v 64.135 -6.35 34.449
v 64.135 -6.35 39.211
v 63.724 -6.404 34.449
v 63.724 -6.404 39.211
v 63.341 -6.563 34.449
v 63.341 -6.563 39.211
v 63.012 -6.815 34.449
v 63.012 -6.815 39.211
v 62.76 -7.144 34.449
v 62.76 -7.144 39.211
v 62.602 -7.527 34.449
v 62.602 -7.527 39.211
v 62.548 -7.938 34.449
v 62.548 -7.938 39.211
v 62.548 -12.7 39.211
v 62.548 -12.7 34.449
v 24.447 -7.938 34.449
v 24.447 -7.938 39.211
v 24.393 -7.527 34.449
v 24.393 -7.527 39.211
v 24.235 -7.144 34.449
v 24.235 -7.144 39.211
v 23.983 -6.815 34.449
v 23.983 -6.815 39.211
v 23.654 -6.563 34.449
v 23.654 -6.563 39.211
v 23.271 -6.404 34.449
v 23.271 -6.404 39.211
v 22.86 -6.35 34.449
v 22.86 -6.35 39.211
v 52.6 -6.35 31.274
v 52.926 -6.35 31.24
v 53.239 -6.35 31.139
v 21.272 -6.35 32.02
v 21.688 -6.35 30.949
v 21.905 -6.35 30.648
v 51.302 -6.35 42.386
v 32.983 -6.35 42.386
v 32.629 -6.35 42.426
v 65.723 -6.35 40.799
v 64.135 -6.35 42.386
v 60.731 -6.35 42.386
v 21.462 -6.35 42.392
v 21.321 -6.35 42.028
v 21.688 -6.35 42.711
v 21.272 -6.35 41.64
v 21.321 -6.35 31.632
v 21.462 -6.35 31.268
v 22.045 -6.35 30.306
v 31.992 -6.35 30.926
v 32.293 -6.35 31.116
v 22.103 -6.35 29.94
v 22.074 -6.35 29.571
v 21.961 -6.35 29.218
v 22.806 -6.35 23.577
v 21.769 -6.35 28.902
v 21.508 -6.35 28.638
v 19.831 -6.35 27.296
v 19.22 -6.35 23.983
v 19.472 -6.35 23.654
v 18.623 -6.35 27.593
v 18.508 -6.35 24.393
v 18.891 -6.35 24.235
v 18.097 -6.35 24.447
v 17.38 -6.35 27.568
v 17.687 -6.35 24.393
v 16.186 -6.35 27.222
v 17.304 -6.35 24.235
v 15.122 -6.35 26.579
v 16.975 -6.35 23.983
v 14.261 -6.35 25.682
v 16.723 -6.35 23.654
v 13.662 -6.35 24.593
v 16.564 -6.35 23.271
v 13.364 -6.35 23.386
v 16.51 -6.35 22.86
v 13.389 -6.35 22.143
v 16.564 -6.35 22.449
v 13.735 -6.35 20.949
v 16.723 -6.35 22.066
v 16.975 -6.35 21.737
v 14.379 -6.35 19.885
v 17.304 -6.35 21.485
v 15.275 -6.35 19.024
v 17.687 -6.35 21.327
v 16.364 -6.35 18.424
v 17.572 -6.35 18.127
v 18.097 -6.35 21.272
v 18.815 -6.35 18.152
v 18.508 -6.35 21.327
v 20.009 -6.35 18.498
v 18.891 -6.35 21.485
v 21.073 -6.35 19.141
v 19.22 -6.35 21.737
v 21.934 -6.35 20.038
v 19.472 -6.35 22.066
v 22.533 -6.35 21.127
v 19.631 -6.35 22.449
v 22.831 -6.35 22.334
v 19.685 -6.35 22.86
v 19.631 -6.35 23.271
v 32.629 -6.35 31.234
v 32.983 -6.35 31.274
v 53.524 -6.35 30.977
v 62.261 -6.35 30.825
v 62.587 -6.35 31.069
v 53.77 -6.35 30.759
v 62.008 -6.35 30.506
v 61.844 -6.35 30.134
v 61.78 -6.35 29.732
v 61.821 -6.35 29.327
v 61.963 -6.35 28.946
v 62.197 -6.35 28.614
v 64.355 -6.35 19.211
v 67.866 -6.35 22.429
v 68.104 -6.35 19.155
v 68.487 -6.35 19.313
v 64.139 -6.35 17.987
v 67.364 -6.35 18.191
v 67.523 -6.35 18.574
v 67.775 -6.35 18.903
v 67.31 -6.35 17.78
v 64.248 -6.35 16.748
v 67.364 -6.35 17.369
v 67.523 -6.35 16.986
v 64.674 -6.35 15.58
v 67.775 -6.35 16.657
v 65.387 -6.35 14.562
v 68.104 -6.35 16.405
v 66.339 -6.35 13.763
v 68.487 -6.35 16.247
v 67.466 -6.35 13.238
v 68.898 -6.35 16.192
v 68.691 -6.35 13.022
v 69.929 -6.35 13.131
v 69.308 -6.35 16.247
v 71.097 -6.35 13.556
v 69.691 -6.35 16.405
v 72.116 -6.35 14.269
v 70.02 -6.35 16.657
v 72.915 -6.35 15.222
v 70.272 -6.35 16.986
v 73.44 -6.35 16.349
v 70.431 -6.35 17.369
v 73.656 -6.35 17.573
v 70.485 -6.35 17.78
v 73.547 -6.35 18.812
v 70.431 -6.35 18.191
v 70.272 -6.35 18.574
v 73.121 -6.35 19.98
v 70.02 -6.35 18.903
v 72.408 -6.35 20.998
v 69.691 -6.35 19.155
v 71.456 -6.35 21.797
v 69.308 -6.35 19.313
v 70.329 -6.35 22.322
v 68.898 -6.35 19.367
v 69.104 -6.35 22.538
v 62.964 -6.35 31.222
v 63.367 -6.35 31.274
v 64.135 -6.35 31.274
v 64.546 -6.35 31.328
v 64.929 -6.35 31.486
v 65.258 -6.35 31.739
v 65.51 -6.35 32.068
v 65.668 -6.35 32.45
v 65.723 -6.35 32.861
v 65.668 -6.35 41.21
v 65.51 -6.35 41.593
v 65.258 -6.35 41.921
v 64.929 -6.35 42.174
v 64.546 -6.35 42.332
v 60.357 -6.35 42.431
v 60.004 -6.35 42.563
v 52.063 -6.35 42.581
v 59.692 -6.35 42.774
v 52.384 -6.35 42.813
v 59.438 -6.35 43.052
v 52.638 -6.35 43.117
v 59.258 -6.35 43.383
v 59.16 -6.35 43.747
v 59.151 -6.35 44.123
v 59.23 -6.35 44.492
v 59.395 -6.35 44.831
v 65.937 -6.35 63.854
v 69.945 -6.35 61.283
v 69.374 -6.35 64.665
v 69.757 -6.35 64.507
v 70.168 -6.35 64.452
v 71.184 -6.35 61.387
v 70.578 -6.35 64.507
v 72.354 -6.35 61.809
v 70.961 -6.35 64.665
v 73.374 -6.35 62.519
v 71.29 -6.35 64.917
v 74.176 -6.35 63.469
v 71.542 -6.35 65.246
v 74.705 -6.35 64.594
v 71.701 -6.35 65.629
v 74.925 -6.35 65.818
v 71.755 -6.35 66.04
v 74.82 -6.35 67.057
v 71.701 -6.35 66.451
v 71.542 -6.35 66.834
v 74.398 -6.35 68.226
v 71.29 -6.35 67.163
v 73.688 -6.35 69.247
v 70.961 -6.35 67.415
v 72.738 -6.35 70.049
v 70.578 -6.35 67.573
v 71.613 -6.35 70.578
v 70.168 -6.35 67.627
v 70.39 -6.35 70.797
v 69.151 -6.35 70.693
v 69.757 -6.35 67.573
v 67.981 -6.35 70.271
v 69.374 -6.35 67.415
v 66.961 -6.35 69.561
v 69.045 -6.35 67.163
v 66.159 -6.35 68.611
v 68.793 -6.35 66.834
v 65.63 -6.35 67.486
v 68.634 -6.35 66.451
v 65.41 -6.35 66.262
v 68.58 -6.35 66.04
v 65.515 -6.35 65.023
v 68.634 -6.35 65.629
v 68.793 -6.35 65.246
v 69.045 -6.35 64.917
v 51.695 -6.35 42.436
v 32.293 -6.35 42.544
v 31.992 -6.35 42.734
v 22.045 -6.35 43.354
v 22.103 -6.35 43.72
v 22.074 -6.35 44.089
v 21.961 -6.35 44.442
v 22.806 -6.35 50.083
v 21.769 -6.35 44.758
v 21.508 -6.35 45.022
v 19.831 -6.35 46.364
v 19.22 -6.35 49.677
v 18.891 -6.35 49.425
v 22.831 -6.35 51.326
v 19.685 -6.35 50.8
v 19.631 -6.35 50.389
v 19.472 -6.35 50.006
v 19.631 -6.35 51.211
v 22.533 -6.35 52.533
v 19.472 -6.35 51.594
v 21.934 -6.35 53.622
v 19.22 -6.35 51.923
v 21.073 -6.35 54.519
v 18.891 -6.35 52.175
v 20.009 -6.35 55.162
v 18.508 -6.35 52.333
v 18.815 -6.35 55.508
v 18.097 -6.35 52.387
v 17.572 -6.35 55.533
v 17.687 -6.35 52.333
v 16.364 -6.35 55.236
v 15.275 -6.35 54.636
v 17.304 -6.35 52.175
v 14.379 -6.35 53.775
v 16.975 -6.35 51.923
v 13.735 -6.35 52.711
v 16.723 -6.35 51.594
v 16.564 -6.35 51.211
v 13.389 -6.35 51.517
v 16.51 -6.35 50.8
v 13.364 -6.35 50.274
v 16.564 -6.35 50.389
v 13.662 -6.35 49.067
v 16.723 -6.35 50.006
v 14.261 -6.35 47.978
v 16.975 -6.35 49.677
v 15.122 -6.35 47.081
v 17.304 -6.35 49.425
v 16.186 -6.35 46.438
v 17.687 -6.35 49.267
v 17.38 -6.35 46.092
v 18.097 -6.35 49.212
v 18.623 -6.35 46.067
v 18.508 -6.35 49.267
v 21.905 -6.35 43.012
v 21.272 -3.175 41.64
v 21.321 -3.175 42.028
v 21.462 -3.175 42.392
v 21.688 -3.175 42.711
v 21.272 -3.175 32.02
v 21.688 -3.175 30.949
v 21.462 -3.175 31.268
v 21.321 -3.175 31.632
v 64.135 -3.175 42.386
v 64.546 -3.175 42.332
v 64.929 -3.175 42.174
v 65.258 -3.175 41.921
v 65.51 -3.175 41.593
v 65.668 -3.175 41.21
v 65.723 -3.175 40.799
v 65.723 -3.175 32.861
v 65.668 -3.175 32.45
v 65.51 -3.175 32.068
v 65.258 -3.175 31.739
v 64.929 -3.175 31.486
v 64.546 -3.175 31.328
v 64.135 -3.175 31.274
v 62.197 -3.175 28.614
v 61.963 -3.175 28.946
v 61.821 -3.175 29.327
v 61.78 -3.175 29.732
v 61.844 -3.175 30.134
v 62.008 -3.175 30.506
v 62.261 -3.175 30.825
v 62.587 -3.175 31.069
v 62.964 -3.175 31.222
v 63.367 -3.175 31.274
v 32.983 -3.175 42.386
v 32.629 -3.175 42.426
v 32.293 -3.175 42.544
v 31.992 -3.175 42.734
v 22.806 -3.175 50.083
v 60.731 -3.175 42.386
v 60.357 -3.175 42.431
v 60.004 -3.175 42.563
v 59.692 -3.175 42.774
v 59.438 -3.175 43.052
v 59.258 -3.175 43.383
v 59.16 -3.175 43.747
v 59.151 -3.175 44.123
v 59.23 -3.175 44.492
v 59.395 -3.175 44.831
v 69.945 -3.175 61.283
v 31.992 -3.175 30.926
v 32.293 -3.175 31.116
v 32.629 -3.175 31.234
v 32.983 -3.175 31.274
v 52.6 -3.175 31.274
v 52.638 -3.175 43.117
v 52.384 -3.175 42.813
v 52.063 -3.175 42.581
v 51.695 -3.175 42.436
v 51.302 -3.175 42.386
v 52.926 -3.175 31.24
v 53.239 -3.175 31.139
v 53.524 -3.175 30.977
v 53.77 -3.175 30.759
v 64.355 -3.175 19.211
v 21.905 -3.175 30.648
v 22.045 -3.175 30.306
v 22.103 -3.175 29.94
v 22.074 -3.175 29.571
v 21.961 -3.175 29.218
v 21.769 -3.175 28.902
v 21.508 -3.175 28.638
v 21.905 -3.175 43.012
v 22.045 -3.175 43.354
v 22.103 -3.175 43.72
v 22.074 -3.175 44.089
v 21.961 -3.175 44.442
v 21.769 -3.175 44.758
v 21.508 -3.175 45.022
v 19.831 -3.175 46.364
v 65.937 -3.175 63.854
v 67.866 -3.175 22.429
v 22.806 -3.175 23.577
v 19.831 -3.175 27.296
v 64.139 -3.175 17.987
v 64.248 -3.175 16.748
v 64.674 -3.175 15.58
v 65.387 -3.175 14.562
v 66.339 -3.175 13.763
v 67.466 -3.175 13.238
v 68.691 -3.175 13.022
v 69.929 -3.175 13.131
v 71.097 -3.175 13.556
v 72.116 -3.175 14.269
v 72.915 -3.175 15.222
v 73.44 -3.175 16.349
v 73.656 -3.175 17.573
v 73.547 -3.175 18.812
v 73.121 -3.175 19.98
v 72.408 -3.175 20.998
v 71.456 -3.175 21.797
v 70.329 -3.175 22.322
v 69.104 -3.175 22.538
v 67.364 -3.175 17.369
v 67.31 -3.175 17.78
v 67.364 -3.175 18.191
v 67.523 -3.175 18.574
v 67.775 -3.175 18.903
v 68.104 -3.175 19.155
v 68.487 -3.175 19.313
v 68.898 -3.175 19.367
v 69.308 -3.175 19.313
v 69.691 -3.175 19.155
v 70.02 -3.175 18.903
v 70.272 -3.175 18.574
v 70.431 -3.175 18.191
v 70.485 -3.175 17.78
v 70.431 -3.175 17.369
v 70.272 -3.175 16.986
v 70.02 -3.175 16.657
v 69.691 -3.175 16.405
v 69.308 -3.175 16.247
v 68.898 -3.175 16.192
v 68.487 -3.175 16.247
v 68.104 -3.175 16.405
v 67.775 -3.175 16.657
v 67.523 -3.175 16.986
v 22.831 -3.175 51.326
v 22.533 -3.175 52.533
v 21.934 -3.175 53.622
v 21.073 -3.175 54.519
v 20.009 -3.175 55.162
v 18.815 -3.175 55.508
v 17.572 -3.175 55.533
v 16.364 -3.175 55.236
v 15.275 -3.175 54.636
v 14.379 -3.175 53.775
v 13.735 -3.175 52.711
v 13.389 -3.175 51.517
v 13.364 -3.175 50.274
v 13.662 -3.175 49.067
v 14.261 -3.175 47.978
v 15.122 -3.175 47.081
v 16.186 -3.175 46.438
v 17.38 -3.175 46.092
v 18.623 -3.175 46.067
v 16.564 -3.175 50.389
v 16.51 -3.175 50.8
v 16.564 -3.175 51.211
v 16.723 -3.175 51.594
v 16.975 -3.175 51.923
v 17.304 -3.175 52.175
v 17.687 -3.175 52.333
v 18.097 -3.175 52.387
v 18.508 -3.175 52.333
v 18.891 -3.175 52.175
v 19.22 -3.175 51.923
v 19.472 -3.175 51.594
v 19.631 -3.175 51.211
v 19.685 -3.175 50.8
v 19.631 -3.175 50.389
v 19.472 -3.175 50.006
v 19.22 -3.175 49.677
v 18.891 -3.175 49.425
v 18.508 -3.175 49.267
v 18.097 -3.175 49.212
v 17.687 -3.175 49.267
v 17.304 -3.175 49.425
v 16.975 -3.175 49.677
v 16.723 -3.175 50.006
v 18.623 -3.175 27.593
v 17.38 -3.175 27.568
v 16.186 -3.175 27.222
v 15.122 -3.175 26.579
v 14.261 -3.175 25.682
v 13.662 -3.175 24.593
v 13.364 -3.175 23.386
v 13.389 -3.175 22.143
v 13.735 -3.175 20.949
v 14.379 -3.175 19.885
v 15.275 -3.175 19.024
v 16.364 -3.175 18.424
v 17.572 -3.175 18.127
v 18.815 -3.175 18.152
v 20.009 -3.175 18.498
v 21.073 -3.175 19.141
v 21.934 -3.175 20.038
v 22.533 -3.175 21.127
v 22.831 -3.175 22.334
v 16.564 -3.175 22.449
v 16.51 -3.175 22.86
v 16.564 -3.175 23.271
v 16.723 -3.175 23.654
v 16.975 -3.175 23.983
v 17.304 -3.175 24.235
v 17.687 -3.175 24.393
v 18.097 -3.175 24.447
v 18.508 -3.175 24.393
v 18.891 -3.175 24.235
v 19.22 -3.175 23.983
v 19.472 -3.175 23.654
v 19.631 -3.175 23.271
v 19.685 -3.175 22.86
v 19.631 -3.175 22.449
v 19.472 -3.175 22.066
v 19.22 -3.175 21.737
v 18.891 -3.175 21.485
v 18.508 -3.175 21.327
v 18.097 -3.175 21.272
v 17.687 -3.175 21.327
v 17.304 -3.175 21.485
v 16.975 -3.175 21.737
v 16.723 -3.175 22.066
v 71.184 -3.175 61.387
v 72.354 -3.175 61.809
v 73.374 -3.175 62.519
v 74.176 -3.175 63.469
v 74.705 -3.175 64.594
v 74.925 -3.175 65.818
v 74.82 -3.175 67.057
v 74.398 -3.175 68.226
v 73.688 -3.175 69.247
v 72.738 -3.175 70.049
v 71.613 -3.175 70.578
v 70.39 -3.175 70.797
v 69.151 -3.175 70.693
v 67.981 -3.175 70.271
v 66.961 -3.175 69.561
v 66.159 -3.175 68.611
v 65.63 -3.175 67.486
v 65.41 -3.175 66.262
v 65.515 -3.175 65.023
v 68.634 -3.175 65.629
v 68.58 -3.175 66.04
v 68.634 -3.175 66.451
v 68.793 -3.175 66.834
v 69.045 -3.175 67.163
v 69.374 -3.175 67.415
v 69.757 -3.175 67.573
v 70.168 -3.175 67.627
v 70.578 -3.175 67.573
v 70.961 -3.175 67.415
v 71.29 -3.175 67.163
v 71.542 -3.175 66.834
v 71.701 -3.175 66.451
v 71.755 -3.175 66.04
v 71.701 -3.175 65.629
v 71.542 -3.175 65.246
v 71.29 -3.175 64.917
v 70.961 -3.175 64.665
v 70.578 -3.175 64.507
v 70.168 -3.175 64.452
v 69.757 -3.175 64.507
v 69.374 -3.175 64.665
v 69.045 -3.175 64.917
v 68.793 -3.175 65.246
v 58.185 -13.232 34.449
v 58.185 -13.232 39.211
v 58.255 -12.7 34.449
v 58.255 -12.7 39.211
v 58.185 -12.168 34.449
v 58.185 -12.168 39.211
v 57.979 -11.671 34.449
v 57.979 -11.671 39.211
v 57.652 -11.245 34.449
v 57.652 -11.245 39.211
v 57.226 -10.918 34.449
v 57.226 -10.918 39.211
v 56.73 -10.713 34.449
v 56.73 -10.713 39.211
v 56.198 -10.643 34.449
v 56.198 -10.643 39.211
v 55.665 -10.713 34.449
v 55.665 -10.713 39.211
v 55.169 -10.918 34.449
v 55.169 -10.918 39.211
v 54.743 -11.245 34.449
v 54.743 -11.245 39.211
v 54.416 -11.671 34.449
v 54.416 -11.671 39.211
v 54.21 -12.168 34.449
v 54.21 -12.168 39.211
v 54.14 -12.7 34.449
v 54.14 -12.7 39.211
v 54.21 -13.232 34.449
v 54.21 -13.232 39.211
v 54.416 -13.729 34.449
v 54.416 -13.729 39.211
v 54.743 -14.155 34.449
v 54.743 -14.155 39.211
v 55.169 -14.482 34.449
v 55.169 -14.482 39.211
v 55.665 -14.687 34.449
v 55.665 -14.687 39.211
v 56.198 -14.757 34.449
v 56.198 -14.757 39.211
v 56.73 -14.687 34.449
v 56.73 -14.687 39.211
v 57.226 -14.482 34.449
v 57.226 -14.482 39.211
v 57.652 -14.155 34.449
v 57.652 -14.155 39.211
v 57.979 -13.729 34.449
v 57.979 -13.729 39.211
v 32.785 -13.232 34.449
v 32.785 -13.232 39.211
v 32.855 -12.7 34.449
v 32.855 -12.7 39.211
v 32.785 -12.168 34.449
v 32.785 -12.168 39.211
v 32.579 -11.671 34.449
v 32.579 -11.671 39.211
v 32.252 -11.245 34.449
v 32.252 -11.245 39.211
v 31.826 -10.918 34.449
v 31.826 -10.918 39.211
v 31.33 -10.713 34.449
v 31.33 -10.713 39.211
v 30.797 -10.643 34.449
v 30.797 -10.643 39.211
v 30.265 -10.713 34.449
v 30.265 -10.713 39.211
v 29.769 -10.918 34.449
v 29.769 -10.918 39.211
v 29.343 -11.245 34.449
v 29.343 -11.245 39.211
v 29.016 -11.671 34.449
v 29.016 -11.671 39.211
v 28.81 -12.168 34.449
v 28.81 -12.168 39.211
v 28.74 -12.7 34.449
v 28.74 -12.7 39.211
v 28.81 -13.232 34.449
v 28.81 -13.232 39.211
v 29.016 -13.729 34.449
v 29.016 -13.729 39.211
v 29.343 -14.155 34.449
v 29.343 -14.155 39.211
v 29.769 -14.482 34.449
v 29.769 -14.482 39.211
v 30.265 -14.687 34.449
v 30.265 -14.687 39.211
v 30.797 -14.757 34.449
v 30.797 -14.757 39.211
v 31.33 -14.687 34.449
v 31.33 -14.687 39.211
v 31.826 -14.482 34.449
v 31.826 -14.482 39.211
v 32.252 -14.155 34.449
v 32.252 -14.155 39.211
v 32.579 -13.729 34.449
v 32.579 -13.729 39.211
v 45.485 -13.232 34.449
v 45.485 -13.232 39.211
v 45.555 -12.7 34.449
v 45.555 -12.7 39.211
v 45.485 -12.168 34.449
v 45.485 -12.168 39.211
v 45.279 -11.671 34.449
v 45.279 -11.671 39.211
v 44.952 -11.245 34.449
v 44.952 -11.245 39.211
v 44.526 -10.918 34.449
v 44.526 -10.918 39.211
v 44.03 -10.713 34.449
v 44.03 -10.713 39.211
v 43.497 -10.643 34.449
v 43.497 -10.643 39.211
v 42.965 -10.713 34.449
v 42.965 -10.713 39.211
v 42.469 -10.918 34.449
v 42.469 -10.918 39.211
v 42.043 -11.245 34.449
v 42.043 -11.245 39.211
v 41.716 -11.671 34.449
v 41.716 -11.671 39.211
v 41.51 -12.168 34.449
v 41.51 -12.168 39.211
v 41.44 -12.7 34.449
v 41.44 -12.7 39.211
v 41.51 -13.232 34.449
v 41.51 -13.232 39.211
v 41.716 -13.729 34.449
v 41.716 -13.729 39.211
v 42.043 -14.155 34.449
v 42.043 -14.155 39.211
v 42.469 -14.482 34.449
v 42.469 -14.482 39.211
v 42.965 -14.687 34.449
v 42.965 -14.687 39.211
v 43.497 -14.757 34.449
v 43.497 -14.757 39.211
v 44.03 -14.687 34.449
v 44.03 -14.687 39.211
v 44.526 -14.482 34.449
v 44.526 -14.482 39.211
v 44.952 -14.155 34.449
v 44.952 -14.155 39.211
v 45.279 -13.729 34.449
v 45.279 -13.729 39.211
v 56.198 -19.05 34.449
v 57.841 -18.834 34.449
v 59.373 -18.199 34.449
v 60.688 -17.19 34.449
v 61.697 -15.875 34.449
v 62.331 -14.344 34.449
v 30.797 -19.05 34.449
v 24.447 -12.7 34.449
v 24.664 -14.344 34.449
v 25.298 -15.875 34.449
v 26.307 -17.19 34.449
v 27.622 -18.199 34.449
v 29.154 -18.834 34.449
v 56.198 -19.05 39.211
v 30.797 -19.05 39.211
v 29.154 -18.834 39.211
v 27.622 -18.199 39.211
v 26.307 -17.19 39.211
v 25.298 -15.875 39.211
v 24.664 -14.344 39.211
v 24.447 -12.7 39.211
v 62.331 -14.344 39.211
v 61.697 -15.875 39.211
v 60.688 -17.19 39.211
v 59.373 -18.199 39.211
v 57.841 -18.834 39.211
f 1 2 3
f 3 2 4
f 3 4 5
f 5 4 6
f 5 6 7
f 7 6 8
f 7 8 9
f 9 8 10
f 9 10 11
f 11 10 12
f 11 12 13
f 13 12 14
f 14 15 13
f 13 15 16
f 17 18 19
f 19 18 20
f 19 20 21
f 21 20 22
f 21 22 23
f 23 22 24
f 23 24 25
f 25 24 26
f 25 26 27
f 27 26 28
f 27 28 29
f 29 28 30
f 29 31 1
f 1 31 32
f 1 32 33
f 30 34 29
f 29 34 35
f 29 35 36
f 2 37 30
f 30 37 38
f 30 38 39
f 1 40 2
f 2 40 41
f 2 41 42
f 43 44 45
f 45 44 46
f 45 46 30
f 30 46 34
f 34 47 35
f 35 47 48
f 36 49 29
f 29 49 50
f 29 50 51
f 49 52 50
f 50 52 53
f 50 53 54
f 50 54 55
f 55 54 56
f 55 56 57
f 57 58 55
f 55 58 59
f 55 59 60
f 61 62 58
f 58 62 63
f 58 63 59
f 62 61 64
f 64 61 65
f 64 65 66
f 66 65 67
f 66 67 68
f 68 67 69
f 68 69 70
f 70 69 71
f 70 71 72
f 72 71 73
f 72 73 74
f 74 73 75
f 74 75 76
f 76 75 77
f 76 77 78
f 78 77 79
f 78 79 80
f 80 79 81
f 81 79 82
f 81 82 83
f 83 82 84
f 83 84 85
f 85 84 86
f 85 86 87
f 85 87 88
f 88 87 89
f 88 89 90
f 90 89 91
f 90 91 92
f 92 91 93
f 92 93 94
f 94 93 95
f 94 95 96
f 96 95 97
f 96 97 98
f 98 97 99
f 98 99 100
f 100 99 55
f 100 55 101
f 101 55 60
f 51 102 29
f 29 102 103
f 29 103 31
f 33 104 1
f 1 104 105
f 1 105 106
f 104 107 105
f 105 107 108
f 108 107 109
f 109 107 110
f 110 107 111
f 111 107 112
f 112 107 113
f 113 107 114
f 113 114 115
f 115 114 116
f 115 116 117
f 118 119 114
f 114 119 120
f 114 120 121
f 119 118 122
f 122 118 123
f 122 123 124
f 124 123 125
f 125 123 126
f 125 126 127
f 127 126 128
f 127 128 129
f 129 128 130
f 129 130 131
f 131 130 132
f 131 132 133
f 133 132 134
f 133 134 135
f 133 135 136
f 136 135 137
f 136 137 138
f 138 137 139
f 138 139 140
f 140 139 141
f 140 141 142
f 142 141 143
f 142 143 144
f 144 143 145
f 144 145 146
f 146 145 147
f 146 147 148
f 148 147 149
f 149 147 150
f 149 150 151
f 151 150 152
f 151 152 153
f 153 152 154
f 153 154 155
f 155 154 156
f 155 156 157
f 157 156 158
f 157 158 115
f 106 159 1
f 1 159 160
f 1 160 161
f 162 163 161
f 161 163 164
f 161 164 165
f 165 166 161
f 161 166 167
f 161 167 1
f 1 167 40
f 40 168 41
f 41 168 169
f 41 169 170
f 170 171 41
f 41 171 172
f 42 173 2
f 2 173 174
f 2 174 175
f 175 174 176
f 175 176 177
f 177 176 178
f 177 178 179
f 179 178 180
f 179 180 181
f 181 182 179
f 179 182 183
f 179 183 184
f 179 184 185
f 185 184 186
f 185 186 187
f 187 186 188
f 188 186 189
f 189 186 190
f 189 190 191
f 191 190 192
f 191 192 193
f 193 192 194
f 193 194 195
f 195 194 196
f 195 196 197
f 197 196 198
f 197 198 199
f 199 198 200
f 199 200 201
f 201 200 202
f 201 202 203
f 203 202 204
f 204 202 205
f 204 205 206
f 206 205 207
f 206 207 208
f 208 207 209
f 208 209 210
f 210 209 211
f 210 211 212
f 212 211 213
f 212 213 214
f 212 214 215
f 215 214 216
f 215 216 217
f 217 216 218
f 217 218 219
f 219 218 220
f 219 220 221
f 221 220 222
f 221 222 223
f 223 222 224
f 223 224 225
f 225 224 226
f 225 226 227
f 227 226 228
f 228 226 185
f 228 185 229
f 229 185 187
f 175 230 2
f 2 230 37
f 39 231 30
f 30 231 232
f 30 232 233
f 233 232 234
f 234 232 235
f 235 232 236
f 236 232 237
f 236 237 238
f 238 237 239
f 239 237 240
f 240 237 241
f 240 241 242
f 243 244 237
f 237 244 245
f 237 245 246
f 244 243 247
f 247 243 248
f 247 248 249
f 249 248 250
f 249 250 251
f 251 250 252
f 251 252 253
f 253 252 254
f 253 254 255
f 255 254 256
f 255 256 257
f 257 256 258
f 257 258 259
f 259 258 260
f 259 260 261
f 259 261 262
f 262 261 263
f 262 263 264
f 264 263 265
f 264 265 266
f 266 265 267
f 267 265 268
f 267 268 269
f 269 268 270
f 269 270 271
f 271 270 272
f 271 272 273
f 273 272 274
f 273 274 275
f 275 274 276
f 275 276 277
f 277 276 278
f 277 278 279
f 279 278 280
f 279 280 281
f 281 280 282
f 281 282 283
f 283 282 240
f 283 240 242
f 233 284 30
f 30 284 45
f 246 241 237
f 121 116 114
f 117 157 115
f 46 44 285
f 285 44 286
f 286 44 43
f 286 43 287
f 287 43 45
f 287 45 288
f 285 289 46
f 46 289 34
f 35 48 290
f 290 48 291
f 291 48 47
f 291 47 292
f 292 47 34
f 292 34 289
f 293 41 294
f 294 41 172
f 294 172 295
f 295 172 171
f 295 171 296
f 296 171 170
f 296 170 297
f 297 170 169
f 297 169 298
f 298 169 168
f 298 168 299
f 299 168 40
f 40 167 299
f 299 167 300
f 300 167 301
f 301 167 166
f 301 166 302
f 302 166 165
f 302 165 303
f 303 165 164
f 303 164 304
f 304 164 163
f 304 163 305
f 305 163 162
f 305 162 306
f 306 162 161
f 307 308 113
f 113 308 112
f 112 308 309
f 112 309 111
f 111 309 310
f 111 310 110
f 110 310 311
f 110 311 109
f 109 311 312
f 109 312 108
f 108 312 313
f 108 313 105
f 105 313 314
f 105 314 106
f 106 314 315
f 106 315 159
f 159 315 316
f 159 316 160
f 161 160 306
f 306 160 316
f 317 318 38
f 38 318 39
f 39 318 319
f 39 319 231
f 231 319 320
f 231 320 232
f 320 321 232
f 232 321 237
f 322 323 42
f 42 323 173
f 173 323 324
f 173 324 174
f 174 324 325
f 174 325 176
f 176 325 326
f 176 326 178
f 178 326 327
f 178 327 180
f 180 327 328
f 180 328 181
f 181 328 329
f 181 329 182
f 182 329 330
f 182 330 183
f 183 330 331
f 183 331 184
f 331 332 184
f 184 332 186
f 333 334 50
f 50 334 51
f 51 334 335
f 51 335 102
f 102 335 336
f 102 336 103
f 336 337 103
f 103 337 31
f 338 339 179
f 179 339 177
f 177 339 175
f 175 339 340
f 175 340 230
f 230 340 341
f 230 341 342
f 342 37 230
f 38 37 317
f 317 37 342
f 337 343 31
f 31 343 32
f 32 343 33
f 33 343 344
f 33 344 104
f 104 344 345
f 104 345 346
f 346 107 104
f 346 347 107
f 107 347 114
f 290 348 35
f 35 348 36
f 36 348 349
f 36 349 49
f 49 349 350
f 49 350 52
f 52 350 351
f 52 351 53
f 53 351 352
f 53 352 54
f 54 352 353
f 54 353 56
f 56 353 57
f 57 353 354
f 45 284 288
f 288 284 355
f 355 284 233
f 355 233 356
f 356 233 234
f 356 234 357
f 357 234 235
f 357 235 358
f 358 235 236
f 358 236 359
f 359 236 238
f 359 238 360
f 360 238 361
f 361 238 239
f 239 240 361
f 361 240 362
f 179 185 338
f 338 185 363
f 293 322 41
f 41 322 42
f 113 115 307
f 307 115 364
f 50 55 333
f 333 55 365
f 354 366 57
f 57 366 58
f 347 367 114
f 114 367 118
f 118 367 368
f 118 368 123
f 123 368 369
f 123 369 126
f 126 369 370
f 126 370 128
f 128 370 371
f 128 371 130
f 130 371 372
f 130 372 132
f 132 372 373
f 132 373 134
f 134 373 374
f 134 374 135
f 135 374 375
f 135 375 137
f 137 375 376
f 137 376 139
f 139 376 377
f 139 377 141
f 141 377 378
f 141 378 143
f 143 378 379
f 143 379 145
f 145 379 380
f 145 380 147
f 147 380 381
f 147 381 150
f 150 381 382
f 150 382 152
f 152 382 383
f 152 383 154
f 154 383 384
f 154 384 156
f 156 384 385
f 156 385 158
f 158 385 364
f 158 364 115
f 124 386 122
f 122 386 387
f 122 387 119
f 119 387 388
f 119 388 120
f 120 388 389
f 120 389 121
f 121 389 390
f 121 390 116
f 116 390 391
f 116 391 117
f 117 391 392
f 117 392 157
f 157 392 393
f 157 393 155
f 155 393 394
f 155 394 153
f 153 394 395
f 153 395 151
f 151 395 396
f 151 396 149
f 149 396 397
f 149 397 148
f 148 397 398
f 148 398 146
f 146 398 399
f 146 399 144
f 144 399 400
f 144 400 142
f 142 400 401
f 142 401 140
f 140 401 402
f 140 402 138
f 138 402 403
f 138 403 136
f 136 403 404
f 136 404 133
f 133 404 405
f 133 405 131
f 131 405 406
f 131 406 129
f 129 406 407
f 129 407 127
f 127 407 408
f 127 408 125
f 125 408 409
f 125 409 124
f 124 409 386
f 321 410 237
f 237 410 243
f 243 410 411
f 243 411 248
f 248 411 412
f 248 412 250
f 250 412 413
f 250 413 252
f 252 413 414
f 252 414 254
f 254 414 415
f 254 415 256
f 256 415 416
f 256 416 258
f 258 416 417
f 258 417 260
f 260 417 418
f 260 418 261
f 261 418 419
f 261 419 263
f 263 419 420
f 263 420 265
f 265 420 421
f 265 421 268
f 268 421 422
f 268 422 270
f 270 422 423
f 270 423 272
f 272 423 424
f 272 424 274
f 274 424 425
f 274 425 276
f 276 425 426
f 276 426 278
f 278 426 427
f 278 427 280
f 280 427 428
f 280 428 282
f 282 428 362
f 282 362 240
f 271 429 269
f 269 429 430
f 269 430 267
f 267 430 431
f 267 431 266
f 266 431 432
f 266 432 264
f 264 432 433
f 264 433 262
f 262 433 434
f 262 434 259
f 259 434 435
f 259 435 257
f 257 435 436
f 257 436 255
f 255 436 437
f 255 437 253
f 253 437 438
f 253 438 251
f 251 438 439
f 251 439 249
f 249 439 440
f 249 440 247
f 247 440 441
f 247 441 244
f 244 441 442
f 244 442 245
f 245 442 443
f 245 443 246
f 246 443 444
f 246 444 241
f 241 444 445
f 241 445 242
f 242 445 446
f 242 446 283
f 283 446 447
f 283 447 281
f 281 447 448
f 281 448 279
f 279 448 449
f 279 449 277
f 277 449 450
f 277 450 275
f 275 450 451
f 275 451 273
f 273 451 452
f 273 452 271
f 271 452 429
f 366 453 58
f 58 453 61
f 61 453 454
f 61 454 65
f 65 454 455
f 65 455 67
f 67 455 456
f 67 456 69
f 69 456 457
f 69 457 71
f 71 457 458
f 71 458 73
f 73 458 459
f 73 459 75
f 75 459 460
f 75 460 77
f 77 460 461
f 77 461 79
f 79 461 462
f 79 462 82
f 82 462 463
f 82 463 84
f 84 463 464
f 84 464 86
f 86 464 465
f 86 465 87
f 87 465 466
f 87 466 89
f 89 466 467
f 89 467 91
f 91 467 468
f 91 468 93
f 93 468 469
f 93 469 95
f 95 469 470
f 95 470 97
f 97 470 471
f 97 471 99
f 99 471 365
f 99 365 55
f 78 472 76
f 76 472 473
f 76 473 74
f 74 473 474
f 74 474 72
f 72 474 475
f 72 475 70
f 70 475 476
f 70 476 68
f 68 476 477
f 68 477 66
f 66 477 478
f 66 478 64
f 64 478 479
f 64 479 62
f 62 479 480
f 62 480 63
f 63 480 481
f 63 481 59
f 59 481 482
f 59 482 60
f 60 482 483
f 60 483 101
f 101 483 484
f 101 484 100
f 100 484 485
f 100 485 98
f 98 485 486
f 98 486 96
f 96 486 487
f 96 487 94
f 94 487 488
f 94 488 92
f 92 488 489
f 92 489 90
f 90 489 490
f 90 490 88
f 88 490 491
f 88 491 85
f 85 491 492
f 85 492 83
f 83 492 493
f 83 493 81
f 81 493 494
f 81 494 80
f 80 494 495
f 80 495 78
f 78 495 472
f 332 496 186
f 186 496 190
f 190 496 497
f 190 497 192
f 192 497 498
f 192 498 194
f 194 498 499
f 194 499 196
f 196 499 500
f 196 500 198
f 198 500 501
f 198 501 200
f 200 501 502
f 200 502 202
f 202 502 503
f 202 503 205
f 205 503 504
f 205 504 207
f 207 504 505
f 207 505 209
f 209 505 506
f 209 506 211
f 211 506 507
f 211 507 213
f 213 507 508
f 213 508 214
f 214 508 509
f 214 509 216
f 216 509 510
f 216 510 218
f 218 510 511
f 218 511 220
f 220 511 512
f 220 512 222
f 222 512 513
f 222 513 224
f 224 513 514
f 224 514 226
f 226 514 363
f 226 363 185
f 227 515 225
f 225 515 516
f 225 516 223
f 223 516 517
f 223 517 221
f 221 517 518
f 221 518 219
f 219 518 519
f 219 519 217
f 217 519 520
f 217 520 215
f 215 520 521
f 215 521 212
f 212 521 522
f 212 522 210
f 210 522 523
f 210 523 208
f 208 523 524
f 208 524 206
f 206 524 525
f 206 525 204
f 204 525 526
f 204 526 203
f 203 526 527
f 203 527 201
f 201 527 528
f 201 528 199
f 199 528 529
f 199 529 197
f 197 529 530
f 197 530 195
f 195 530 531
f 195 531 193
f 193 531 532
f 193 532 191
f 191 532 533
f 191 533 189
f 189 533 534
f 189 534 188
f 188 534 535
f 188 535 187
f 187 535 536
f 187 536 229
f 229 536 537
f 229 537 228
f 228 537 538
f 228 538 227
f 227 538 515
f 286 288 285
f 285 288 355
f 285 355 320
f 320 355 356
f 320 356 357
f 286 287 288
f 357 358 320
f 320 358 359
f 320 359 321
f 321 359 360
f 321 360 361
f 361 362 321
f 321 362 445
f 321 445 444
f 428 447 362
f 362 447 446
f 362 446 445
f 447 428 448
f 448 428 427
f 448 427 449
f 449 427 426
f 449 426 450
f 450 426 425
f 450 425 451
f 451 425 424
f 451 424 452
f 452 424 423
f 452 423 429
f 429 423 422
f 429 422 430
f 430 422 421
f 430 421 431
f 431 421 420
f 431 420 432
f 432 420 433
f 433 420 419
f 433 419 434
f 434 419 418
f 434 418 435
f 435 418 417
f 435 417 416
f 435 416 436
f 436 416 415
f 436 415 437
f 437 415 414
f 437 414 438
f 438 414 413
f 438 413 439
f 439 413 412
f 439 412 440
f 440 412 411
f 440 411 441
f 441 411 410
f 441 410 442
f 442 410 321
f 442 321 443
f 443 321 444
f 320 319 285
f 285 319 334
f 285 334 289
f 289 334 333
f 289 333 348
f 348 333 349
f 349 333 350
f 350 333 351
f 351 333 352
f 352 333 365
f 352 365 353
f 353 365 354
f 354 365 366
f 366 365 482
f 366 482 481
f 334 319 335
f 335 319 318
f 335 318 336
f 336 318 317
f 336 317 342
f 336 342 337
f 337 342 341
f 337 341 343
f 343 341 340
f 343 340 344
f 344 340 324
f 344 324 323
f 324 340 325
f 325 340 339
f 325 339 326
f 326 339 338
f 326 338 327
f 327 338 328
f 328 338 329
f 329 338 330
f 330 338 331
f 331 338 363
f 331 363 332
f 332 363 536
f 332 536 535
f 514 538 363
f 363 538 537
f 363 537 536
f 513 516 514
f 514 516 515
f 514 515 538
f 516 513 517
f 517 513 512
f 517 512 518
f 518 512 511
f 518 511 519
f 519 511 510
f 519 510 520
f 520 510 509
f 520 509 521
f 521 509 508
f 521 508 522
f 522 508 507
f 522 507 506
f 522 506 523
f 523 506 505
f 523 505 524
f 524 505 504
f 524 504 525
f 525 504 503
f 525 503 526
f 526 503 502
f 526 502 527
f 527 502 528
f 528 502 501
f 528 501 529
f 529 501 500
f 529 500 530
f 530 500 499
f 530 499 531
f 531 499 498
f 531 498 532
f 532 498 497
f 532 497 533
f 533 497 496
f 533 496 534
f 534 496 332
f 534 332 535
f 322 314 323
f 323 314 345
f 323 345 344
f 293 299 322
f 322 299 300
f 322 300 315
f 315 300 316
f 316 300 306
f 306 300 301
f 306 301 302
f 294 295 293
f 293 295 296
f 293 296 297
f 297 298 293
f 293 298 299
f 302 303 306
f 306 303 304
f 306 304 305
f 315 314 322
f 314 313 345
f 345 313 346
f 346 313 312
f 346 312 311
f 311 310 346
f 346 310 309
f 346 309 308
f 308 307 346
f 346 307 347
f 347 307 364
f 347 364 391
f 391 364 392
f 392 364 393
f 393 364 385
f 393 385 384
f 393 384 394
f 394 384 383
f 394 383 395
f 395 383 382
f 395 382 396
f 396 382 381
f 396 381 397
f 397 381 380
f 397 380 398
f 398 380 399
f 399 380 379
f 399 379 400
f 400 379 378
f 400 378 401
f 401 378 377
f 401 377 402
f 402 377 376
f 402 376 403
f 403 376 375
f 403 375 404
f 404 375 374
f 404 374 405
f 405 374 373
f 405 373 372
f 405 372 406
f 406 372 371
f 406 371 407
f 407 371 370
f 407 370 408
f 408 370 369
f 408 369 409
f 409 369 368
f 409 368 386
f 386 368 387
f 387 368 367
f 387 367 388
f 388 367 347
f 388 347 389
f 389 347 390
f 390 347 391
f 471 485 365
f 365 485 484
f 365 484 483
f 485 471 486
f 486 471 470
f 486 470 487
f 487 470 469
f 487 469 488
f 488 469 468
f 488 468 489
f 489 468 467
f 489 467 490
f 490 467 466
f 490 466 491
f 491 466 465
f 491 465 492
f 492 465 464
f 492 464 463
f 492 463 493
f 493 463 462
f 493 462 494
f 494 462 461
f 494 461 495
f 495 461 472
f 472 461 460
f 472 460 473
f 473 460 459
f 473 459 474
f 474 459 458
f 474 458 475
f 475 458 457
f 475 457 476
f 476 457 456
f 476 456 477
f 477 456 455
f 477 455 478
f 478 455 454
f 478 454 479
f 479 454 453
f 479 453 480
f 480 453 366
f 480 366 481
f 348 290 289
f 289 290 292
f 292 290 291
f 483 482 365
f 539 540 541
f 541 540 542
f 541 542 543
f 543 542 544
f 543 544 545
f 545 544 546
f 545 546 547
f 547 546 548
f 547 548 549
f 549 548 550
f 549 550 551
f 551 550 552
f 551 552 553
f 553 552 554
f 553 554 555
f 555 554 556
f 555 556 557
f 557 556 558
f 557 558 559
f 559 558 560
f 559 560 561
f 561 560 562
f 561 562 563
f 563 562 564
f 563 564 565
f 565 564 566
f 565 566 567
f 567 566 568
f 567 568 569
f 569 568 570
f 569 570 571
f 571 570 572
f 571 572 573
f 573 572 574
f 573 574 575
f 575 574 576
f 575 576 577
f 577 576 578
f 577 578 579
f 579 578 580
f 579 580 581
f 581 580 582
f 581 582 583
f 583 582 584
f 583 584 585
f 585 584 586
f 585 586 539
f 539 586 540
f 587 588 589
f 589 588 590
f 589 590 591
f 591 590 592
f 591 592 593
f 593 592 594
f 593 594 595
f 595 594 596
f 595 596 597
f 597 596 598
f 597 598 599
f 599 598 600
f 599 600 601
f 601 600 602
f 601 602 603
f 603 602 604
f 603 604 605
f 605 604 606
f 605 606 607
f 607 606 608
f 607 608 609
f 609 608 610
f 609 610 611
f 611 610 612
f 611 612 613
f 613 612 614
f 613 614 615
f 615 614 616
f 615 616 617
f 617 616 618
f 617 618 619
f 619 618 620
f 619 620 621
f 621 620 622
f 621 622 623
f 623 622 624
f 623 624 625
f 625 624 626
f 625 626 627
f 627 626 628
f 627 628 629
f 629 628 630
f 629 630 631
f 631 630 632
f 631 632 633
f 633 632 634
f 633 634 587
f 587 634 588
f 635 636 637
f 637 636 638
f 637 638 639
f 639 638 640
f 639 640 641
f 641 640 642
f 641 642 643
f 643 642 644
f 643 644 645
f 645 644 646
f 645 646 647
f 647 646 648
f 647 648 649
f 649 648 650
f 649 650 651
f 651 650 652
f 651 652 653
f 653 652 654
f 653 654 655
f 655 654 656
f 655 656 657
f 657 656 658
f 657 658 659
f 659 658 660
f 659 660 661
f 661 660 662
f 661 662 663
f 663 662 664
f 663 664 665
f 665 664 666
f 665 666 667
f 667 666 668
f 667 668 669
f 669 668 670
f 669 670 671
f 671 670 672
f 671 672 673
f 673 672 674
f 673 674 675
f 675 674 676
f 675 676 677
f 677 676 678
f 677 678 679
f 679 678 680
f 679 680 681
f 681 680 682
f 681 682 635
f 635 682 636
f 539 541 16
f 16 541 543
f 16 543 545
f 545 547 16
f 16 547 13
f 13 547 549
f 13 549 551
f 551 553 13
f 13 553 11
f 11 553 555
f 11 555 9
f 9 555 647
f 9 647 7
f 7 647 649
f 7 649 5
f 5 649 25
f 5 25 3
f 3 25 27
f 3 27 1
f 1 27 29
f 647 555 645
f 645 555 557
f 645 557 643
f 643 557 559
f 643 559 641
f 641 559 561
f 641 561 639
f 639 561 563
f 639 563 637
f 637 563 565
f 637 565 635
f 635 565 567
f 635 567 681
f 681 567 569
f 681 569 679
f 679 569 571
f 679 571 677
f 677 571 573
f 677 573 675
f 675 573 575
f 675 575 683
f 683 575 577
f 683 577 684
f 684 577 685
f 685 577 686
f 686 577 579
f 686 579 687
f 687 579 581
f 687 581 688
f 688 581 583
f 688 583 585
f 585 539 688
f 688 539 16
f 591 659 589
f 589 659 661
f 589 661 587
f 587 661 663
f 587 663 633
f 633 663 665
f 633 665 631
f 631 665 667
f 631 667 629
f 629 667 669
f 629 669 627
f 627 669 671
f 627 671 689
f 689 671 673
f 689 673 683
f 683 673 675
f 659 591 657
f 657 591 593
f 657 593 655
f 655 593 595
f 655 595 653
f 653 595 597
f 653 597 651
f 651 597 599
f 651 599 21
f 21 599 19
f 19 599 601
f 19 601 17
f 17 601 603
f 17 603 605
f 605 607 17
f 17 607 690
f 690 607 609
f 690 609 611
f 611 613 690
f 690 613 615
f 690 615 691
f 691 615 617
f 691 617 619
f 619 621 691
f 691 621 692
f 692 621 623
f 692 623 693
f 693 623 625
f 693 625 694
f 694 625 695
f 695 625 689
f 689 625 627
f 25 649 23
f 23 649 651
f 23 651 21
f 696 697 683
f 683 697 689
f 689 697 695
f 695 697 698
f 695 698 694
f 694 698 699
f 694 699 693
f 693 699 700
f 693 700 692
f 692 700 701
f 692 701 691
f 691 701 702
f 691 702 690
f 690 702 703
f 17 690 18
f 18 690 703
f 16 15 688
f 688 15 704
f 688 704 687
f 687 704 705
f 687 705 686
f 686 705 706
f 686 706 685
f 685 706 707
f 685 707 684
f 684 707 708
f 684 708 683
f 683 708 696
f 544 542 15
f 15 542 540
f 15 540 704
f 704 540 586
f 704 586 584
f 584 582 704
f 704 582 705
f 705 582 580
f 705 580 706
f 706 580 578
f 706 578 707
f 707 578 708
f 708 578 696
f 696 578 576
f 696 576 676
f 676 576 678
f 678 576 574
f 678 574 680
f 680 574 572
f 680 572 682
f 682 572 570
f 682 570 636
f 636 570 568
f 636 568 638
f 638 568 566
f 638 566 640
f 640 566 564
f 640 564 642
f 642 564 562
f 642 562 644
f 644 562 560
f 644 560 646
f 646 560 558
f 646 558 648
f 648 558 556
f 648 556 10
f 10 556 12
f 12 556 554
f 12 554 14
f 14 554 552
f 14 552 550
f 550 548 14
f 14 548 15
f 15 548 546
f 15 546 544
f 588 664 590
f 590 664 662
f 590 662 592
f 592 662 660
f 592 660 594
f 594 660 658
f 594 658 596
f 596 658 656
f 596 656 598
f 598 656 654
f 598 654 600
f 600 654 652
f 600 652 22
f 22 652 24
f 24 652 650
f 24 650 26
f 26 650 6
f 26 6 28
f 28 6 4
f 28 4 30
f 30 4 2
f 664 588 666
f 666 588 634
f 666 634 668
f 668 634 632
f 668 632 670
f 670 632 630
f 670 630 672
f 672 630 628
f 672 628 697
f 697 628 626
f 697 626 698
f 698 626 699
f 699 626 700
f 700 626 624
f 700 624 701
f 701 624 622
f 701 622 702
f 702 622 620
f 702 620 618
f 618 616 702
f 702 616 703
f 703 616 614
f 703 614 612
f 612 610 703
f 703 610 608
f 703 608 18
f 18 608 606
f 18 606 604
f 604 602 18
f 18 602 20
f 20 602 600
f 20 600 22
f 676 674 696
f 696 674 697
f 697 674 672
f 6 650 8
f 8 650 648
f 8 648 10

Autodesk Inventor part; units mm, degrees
ref_plane "Work Plane1" through (50.6765, 0, 41.694) normal (0, -1, 0) x (-1, 0, 0)
ref_plane "Work Plane2" through (50.6765, -3.175, 41.694) normal (0, -1, 0) x (-1, 0, 0)
sketch "Sketch2" plane through (50.6765, -3.175, 41.694) normal (0, -1, 0) x (-1, 0, 0)
  circle A0 centre (32.579, -9.106) radius 1.5875 construction
  circle A1 centre (32.579, 18.834) radius 1.5875 construction
  circle A2 centre (-18.221, 23.914) radius 1.5875 construction
  circle A3 centre (-19.491, -24.346) radius 1.5875 construction
  line L0 (-33.461, 26.454) -> (-33.461, -26.886) construction
  line L1 (-33.461, -26.886) -> (30.039, -26.886) construction
  line L2 (30.039, -26.886) -> (32.579, -24.346) construction
  line L3 (32.579, -24.346) -> (32.579, -12.916) construction
  line L4 (32.579, -12.916) -> (35.119, -10.376) construction
  line L5 (35.119, -10.376) -> (35.119, 20.104) construction
  line L6 (35.119, 20.104) -> (32.579, 22.644) construction
  line L7 (32.579, 22.644) -> (32.579, 26.454) construction
  line L8 (32.579, 26.454) -> (-33.461, 26.454) construction
  circle A4 centre (32.579, -9.106) radius 1.5875
  circle A5 centre (-18.221, 23.914) radius 1.5875
  circle A6 centre (32.579, 18.834) radius 1.5875
  circle A7 centre (32.579, -9.106) radius 4.7625
  circle A8 centre (32.579, 18.834) radius 4.7625
  circle A9 centre (-18.221, 23.914) radius 4.7625
  circle A10 centre (-19.491, -24.346) radius 1.5875
  circle A11 centre (-19.491, -24.346) radius 4.7625
  point P0 (50.6765, 41.694)
  dimension "d7" = 9.525
  dimension "d8" = 9.525
  dimension "d9" = 9.525
  dimension "d10" = 3.175
  dimension "d11" = 9.525
extrude "Extrusion2" add sketch "Sketch2" along normal blind 3.175
ref_plane "Work Plane7" through (18.0975, -3.175, 36.83) normal (0, 0, 1) x (1, 0, 0)
ref_plane "Work Plane4" through (18.0975, -3.175, 27.6225) normal (0, 0, 1) x (1, 0, 0)
ref_plane "Work Plane6" through (18.0975, -3.175, 46.0375) normal (0, 0, -1) x (-1, 0, 0)
sketch "Sketch3" plane through (18.0975, -3.175, 36.83) normal (0, 0, 1) x (1, 0, 0)
  line L0 (46.0375, -3.175) -> (55.5625, -3.175) construction
  line L1 (55.5625, 0) -> (46.0375, 0) construction
  line L2 (-4.7625, -3.175) -> (4.7625, -3.175) construction
  line L3 (4.7625, 0) -> (-4.7625, 0) construction
  line L4 (46.0375, -3.175) -> (4.7625, -3.175) construction
  line L5 (4.7625, 0) -> (4.7625, -3.175) construction
  line L6 (25.4, -3.175) -> (25.4, -15.875) construction
  circle A0 centre (25.4, -9.525) radius 2.0574
  circle A1 centre (25.4, -9.525) radius 6.35 construction
  circle A2 centre (12.7, -9.525) radius 2.0574
  arc A3 (6.35, -9.525) -> (12.7, -15.875) centre (12.7, -9.525) ccw
  circle A4 centre (38.1, -9.525) radius 2.0574
  arc A5 (38.1, -15.875) -> (44.45, -9.525) centre (38.1, -9.525) ccw
  line L7 (38.1, -15.875) -> (12.7, -15.875)
  line L8 (44.45, -9.525) -> (44.45, -3.175)
  line L9 (6.35, -9.525) -> (6.35, -3.175)
  line L10 (44.45, -3.175) -> (6.35, -3.175)
  point P0 (-18.0975, 3.175)
  dimension "d14" = 4.1148
  dimension "d15" = 12.7
  dimension "d16" = 4.1148
  dimension "d17" = 12.7
extrude "Extrusion3" add sketch "Sketch3" along normal mid plane 4.7625
sketch "Sketch4" plane through (68.8975, -3.175, 17.78) normal (0, 1, 0) x (1, 0, 0)
  circle A0 centre (1.27, -48.26) radius 4.7625 construction
  circle A1 centre (1.27, -48.26) radius 1.5875 construction
  circle A2 centre (0, 0) radius 1.5875 construction
  circle A3 centre (0, 0) radius 4.7625 construction
  circle A4 centre (-50.8, -5.08) radius 1.5875 construction
  circle A5 centre (-50.8, -5.08) radius 4.7625 construction
  circle A6 centre (-50.8, -33.02) radius 4.7625 construction
  circle A7 centre (-50.8, -33.02) radius 1.5875 construction
  line L0 (-44.45, -16.6687) -> (-6.35, -16.6687) construction
  line L1 (-6.35, -21.4312) -> (-44.45, -21.4312) construction
  line L2 (-44.45, -21.4312) -> (-44.45, -16.6687) construction
  line L3 (-6.35, -21.4312) -> (-6.35, -16.6687) construction
  line L4 (-6.35, -19.05) -> (-44.45, -19.05) construction
  line L5 (-50.8, -33.02) -> (-33.3375, -19.05) construction
  line L6 (-33.3375, -19.05) -> (-50.8, -5.08) construction
  circle A8 centre (0, 0) radius 1.5875 construction
  line L7 (0, 0) -> (-17.4625, -19.05) construction
  circle A9 centre (1.27, -48.26) radius 1.5875 construction
  line L8 (1.27, -48.26) -> (-17.4625, -19.05) construction
  line L9 (-27.4574, -16.6687) -> (-23.3426, -16.6687) construction
  line L10 (-23.3426, -21.4312) -> (-27.4574, -21.4312) construction
  line L11 (-25.4, -21.4312) -> (-25.4, -16.6687) construction
  line L12 (-47.625, -13.4937) -> (-47.625, -24.6062)
  line L13 (-3.175, -24.6062) -> (-3.175, -13.4937)
  line L14 (-2.961, -46.0736) -> (-16.7281, -24.6062)
  line L15 (-15.5996, -13.4937) -> (-4.5423, -1.4313)
  line L16 (-9.1389, -13.4937) -> (-1.0316, -4.6494)
  line L17 (1.048, -43.5027) -> (-11.0704, -24.6062)
  arc A10 (1.048, -43.5027) -> (-2.961, -46.0736) centre (1.27, -48.26) ccw
  arc A11 (-4.5423, -1.4313) -> (-1.0316, -4.6494) centre (0, 0) ccw
  line L18 (-36.471, -24.6062) -> (-46.0918, -32.3029)
  circle A12 centre (-50.8, -33.02) radius 4.7625 construction
  line L19 (-49.0669, -28.584) -> (-44.0947, -24.6062)
  line L20 (-36.471, -13.4937) -> (-46.0918, -5.7971)
  line L21 (-44.0947, -13.4937) -> (-49.0669, -9.516)
  arc A13 (-46.0918, -32.3029) -> (-49.0669, -28.584) centre (-50.8, -33.02) ccw
  arc A14 (-49.0669, -9.516) -> (-46.0918, -5.7971) centre (-50.8, -5.08) ccw
  line L22 (-47.625, -24.6062) -> (-44.0947, -24.6062)
  line L23 (-44.0947, -13.4937) -> (-47.625, -13.4937)
  line L24 (-3.175, -13.4937) -> (-9.1389, -13.4937)
  line L25 (-15.5996, -13.4937) -> (-36.471, -13.4937)
  line L26 (-36.471, -24.6062) -> (-16.7281, -24.6062)
  line L27 (-11.0704, -24.6062) -> (-3.175, -24.6062)
  point P0 (-68.8975, 17.78)
  dimension "d20" = 15.875
  dimension "d21" = 7.9375
  dimension "d28" = 2.3813
  dimension "d29" = 2.3813
  dimension "d30" = 2.3813
  dimension "d31" = 2.3813
  dimension "d32" = 2.3813
  dimension "d33" = 2.3813
  dimension "d34" = 2.3813
  dimension "d35" = 2.3813
  dimension "d36" = 3.175
  dimension "d37" = 3.175
  dimension "d38" = 3.175
  dimension "d39" = 3.175
extrude "Extrusion4" add sketch "Sketch4" against normal up to surface (3.175 mm away)
fillet "Fillet1" radius 1.5875 12 edges at (24.8028, -4.7625, 42.3862) (24.8028, -4.7625, 31.2737) (53.2979, -4.7625, 31.2737) (52.1694, -4.7625, 42.3862) (32.4265, -4.7625, 31.2737) (57.8271, -4.7625, 42.3862) (32.4265, -4.7625, 42.3862) (59.7586, -4.7625, 31.2737) (65.7225, -4.7625, 31.2737) (65.7225, -4.7625, 42.3862) (21.2725, -4.7625, 31.2737) (21.2725, -4.7625, 42.3862)
fillet "Fillet2" radius 1.5875 2 edges at (24.4475, -6.35, 36.83) (62.5475, -6.35, 36.83)
ref_plane "Work Plane3" through (20.6375, 0, 68.58) normal (0, 0, 1) x (1, 0, 0)
ref_plane "Work Plane5" through (84.1375, 0, 15.24) normal (0, 0, -1) x (-1, 0, 0)
properties part number "ChassisPrototypeA4"
